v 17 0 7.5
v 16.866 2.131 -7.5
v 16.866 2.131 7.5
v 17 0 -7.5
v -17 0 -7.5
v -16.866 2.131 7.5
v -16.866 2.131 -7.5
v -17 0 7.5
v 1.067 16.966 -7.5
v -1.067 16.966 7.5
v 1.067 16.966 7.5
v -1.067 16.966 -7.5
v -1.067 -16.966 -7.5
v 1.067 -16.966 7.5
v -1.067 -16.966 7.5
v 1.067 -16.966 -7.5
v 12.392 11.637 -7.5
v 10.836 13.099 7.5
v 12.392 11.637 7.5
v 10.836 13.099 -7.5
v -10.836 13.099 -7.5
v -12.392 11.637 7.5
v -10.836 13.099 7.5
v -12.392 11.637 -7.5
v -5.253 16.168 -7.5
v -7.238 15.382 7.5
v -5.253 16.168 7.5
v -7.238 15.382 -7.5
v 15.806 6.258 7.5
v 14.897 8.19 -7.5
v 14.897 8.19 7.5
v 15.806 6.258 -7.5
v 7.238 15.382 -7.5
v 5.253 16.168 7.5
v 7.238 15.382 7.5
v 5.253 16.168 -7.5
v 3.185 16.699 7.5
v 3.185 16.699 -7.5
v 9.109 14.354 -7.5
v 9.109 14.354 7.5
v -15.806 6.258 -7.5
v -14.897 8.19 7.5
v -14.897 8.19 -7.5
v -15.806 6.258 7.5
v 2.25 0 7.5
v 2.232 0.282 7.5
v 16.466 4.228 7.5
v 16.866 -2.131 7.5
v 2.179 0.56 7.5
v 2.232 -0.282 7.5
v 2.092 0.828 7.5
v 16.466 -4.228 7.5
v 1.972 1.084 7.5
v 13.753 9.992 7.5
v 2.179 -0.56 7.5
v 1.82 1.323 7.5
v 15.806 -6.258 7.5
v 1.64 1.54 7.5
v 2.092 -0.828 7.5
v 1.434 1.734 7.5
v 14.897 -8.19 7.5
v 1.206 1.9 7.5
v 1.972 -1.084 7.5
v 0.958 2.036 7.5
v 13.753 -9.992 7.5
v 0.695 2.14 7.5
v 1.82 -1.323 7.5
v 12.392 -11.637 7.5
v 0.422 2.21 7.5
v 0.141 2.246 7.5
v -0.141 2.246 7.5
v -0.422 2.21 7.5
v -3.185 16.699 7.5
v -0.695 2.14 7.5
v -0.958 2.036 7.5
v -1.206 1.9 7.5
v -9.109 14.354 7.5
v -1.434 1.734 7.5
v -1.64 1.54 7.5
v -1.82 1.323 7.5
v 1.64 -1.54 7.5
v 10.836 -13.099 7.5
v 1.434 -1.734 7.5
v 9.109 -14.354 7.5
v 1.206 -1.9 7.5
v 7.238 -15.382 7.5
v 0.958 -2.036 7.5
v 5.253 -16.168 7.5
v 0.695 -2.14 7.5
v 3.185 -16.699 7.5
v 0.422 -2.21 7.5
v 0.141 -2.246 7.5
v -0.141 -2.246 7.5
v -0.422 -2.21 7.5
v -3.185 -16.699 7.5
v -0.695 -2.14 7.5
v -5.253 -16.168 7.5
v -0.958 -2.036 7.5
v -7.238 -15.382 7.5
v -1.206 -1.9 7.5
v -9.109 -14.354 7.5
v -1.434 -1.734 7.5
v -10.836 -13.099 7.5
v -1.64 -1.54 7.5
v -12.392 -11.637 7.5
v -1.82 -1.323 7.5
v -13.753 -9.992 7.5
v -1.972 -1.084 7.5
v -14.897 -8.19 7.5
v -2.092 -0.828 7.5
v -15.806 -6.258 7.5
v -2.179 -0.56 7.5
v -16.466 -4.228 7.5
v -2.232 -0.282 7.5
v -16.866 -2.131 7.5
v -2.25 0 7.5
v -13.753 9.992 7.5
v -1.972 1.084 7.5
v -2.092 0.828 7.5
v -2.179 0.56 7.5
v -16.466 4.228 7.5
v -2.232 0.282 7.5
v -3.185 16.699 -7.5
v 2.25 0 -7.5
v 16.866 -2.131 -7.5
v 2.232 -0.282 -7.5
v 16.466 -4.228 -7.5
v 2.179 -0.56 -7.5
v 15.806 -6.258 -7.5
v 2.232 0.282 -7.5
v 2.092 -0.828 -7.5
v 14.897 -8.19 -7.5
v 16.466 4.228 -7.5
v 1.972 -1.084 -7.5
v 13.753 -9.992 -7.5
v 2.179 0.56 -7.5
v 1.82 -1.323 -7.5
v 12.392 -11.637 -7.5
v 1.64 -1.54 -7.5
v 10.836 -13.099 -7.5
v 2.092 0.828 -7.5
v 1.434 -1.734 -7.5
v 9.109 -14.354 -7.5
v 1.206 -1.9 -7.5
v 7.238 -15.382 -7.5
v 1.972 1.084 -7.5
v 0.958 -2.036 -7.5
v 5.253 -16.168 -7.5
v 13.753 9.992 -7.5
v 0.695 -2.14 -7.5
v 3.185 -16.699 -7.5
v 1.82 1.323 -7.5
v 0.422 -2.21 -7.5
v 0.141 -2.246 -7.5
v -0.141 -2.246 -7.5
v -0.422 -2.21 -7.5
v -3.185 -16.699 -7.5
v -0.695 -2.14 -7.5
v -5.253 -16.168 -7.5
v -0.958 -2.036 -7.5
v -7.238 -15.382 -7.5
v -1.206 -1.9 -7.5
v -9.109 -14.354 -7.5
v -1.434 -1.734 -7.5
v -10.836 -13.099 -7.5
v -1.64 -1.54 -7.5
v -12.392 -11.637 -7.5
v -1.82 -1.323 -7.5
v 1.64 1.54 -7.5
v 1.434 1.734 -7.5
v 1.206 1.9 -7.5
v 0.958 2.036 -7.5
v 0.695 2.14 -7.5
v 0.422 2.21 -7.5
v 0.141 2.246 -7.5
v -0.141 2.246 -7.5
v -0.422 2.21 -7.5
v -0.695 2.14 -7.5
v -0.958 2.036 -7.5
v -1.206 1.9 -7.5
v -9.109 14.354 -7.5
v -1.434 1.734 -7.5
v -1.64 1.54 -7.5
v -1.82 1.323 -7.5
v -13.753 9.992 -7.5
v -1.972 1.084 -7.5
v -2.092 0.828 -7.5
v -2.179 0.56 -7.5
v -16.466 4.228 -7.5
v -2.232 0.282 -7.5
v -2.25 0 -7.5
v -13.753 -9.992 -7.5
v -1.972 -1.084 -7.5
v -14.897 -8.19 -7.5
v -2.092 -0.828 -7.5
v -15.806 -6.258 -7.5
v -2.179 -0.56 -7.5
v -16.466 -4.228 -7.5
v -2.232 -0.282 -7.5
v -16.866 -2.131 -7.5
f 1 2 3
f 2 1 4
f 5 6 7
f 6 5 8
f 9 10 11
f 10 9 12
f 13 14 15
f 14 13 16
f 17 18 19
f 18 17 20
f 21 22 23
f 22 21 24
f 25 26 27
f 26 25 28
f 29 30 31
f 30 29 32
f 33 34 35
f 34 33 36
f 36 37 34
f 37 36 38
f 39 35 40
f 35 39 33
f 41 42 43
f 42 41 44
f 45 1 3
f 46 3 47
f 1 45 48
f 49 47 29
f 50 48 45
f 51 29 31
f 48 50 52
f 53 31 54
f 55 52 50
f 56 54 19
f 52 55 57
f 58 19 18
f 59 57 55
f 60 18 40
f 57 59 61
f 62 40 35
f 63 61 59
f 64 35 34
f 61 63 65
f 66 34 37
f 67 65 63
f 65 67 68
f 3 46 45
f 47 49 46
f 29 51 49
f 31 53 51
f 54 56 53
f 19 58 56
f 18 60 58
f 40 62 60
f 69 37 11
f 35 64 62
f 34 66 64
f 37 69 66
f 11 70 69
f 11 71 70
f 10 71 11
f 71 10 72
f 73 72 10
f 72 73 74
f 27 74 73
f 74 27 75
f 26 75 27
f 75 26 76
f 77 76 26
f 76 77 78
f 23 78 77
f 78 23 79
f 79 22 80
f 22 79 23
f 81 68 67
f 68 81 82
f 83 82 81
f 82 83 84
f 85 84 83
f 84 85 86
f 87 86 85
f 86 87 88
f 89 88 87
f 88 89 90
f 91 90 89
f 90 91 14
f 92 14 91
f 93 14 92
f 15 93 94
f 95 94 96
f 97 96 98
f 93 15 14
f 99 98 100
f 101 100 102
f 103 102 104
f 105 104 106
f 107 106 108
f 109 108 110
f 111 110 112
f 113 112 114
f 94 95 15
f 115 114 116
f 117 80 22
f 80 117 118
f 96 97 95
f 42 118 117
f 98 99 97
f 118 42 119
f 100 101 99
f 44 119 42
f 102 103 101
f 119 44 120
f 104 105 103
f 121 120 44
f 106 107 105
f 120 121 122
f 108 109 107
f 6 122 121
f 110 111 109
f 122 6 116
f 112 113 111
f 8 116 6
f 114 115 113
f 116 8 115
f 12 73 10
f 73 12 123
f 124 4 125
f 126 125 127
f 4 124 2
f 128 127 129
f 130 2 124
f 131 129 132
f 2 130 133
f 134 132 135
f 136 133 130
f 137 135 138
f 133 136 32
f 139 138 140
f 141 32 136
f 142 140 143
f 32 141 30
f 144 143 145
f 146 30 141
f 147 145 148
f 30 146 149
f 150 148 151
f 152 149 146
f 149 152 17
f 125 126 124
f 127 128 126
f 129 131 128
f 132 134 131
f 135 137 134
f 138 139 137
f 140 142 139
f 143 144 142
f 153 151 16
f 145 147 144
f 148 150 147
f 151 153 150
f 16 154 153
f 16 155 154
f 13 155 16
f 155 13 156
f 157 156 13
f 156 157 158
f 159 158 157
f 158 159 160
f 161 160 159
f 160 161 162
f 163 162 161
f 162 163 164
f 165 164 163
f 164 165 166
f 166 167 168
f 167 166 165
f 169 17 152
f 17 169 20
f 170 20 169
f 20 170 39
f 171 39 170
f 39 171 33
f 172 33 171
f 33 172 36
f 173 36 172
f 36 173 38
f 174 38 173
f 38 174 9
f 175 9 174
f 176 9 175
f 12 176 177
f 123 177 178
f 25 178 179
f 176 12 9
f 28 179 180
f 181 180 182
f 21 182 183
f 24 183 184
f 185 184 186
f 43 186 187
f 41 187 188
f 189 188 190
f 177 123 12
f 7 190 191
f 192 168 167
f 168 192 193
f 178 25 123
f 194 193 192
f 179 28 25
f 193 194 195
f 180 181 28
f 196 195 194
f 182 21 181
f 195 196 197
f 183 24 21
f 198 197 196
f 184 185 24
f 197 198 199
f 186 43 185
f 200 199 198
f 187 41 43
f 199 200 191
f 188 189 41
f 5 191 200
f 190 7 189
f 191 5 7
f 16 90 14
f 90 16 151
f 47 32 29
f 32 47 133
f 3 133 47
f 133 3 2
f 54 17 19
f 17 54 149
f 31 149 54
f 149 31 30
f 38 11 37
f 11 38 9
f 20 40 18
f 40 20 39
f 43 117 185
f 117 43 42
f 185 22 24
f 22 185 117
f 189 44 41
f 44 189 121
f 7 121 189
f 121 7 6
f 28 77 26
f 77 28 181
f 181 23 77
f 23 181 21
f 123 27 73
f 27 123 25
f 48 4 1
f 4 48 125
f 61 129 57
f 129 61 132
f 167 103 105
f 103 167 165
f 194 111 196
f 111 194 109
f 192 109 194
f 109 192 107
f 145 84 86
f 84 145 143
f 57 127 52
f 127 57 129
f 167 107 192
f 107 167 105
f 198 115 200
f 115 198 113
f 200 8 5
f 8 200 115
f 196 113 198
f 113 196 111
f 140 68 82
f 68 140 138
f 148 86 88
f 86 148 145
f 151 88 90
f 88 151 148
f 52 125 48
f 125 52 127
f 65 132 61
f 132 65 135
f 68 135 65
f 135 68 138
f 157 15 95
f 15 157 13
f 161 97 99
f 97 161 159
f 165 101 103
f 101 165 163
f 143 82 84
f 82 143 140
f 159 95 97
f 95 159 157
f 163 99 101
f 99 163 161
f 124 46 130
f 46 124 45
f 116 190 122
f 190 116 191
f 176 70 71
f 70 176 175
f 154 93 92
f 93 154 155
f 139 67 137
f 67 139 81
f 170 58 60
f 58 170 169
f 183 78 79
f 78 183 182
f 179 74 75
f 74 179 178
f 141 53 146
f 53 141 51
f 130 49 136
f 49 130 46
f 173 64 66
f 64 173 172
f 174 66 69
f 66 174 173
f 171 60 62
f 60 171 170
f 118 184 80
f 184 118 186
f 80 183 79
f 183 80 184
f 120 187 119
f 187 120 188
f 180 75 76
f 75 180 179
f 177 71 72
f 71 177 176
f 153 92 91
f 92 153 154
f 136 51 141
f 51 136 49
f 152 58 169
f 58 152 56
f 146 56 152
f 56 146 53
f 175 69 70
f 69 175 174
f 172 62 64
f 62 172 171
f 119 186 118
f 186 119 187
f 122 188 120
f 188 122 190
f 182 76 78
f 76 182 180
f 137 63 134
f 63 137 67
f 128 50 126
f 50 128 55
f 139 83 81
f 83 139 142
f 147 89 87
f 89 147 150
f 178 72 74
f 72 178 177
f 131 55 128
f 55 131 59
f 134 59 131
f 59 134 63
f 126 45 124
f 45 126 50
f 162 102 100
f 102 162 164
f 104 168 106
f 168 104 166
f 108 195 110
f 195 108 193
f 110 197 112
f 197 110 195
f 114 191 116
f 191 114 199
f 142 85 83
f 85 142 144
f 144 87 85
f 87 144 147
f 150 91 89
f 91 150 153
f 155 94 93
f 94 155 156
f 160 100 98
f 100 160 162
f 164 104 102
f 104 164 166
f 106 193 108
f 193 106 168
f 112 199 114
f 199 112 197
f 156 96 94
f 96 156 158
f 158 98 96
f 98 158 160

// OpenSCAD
$fn = 50;


difference() {
	union() {
		translate(v = [0, 0, -7.5000000000]) {
			cylinder(h = 15, r = 17.0000000000);
		}
	}
	union() {
		translate(v = [0, 0, -100.0000000000]) {
			cylinder(h = 200, r = 2.2500000000);
		}
	}
}
